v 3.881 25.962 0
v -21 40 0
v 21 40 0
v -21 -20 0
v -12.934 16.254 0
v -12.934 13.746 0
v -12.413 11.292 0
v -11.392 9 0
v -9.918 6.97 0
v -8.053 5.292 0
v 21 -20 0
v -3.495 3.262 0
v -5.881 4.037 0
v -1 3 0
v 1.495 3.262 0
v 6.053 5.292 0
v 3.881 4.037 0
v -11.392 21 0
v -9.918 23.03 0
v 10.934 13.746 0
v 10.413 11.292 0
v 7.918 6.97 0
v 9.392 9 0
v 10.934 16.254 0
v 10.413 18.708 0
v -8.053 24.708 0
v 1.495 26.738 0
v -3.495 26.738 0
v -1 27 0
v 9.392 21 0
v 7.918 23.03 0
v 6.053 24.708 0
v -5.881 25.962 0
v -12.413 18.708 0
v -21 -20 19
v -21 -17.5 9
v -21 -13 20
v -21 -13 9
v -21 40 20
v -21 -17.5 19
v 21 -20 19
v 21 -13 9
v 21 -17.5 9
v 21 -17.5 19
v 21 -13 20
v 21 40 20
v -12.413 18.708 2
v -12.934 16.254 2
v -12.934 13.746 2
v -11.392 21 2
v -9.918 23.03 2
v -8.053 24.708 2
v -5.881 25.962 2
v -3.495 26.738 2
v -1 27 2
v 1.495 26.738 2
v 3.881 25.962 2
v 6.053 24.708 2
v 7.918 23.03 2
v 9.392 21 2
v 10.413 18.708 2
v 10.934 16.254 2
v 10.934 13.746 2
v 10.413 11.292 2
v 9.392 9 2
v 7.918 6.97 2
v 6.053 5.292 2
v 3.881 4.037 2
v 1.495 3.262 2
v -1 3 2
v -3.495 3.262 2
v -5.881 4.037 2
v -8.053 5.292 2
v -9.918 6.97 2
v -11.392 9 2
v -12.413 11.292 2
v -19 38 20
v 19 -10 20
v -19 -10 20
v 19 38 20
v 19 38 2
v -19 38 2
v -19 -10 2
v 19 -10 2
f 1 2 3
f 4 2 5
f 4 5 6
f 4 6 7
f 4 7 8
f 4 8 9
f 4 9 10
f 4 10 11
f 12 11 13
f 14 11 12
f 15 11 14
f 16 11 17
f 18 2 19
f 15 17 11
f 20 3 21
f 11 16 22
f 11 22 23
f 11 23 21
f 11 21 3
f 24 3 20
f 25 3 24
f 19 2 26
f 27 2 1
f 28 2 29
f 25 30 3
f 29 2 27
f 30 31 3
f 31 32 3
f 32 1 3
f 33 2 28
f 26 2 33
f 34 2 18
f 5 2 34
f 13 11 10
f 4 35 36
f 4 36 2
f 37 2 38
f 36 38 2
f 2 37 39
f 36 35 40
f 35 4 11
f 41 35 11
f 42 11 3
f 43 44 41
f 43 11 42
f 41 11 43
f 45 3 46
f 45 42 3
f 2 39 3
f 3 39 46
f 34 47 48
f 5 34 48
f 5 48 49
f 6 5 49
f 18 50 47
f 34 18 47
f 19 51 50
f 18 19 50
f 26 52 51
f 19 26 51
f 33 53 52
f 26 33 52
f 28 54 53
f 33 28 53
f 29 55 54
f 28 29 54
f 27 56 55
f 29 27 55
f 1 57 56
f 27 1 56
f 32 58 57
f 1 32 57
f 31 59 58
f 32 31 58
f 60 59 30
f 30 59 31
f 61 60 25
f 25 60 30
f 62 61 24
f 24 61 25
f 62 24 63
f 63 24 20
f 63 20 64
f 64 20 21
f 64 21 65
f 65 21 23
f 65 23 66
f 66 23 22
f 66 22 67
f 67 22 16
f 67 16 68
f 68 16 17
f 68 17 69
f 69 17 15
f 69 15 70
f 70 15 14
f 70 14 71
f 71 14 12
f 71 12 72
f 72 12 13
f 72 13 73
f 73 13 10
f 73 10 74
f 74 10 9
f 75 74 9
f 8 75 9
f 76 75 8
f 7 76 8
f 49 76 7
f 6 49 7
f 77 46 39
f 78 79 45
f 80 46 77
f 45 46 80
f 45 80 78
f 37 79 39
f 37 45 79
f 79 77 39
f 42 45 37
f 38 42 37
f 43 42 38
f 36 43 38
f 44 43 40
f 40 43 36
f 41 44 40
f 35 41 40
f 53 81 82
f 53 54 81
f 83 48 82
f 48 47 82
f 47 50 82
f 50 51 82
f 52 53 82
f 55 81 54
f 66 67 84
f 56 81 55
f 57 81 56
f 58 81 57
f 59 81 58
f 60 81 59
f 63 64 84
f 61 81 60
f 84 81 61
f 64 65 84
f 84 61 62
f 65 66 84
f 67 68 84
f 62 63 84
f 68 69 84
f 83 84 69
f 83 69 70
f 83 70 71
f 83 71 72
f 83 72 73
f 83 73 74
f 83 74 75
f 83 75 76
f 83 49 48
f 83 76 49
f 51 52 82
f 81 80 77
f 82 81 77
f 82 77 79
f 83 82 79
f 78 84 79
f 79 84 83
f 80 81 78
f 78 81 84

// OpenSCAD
// Shapeoko front mount for Emergency Stop switch
// http://goo.gl/UZtuR (ebay listing of the switch I used)

// Colin Faulkingham

difference(){
translate([21,40,54]) rotate([-90,0,90])
difference(){
	rotate ([-0,-90,0]){

		difference(){
			// main cube
			cube([42,54,60]);
	
			// Shapeoko Hanger
			translate([0,0,53]) cube([42,45,4.5]);
			
			//switch housing
			translate([2,0,2]) cube([42-4,54-2,48]);

			//center mount
			rotate([90,90,0]) translate([-25,22,-55]) cylinder(r=24/2,h=15);
		}	

	}
	// Shorten Shapeoko hanger 
	rotate([90,0,0]) translate([-60,0,-35]) cube([4,45,50]);

	// front angeled cut off.

}
	rotate([0,0,0]) translate([-24,-13,20]) cube([50,54,40]);

}
